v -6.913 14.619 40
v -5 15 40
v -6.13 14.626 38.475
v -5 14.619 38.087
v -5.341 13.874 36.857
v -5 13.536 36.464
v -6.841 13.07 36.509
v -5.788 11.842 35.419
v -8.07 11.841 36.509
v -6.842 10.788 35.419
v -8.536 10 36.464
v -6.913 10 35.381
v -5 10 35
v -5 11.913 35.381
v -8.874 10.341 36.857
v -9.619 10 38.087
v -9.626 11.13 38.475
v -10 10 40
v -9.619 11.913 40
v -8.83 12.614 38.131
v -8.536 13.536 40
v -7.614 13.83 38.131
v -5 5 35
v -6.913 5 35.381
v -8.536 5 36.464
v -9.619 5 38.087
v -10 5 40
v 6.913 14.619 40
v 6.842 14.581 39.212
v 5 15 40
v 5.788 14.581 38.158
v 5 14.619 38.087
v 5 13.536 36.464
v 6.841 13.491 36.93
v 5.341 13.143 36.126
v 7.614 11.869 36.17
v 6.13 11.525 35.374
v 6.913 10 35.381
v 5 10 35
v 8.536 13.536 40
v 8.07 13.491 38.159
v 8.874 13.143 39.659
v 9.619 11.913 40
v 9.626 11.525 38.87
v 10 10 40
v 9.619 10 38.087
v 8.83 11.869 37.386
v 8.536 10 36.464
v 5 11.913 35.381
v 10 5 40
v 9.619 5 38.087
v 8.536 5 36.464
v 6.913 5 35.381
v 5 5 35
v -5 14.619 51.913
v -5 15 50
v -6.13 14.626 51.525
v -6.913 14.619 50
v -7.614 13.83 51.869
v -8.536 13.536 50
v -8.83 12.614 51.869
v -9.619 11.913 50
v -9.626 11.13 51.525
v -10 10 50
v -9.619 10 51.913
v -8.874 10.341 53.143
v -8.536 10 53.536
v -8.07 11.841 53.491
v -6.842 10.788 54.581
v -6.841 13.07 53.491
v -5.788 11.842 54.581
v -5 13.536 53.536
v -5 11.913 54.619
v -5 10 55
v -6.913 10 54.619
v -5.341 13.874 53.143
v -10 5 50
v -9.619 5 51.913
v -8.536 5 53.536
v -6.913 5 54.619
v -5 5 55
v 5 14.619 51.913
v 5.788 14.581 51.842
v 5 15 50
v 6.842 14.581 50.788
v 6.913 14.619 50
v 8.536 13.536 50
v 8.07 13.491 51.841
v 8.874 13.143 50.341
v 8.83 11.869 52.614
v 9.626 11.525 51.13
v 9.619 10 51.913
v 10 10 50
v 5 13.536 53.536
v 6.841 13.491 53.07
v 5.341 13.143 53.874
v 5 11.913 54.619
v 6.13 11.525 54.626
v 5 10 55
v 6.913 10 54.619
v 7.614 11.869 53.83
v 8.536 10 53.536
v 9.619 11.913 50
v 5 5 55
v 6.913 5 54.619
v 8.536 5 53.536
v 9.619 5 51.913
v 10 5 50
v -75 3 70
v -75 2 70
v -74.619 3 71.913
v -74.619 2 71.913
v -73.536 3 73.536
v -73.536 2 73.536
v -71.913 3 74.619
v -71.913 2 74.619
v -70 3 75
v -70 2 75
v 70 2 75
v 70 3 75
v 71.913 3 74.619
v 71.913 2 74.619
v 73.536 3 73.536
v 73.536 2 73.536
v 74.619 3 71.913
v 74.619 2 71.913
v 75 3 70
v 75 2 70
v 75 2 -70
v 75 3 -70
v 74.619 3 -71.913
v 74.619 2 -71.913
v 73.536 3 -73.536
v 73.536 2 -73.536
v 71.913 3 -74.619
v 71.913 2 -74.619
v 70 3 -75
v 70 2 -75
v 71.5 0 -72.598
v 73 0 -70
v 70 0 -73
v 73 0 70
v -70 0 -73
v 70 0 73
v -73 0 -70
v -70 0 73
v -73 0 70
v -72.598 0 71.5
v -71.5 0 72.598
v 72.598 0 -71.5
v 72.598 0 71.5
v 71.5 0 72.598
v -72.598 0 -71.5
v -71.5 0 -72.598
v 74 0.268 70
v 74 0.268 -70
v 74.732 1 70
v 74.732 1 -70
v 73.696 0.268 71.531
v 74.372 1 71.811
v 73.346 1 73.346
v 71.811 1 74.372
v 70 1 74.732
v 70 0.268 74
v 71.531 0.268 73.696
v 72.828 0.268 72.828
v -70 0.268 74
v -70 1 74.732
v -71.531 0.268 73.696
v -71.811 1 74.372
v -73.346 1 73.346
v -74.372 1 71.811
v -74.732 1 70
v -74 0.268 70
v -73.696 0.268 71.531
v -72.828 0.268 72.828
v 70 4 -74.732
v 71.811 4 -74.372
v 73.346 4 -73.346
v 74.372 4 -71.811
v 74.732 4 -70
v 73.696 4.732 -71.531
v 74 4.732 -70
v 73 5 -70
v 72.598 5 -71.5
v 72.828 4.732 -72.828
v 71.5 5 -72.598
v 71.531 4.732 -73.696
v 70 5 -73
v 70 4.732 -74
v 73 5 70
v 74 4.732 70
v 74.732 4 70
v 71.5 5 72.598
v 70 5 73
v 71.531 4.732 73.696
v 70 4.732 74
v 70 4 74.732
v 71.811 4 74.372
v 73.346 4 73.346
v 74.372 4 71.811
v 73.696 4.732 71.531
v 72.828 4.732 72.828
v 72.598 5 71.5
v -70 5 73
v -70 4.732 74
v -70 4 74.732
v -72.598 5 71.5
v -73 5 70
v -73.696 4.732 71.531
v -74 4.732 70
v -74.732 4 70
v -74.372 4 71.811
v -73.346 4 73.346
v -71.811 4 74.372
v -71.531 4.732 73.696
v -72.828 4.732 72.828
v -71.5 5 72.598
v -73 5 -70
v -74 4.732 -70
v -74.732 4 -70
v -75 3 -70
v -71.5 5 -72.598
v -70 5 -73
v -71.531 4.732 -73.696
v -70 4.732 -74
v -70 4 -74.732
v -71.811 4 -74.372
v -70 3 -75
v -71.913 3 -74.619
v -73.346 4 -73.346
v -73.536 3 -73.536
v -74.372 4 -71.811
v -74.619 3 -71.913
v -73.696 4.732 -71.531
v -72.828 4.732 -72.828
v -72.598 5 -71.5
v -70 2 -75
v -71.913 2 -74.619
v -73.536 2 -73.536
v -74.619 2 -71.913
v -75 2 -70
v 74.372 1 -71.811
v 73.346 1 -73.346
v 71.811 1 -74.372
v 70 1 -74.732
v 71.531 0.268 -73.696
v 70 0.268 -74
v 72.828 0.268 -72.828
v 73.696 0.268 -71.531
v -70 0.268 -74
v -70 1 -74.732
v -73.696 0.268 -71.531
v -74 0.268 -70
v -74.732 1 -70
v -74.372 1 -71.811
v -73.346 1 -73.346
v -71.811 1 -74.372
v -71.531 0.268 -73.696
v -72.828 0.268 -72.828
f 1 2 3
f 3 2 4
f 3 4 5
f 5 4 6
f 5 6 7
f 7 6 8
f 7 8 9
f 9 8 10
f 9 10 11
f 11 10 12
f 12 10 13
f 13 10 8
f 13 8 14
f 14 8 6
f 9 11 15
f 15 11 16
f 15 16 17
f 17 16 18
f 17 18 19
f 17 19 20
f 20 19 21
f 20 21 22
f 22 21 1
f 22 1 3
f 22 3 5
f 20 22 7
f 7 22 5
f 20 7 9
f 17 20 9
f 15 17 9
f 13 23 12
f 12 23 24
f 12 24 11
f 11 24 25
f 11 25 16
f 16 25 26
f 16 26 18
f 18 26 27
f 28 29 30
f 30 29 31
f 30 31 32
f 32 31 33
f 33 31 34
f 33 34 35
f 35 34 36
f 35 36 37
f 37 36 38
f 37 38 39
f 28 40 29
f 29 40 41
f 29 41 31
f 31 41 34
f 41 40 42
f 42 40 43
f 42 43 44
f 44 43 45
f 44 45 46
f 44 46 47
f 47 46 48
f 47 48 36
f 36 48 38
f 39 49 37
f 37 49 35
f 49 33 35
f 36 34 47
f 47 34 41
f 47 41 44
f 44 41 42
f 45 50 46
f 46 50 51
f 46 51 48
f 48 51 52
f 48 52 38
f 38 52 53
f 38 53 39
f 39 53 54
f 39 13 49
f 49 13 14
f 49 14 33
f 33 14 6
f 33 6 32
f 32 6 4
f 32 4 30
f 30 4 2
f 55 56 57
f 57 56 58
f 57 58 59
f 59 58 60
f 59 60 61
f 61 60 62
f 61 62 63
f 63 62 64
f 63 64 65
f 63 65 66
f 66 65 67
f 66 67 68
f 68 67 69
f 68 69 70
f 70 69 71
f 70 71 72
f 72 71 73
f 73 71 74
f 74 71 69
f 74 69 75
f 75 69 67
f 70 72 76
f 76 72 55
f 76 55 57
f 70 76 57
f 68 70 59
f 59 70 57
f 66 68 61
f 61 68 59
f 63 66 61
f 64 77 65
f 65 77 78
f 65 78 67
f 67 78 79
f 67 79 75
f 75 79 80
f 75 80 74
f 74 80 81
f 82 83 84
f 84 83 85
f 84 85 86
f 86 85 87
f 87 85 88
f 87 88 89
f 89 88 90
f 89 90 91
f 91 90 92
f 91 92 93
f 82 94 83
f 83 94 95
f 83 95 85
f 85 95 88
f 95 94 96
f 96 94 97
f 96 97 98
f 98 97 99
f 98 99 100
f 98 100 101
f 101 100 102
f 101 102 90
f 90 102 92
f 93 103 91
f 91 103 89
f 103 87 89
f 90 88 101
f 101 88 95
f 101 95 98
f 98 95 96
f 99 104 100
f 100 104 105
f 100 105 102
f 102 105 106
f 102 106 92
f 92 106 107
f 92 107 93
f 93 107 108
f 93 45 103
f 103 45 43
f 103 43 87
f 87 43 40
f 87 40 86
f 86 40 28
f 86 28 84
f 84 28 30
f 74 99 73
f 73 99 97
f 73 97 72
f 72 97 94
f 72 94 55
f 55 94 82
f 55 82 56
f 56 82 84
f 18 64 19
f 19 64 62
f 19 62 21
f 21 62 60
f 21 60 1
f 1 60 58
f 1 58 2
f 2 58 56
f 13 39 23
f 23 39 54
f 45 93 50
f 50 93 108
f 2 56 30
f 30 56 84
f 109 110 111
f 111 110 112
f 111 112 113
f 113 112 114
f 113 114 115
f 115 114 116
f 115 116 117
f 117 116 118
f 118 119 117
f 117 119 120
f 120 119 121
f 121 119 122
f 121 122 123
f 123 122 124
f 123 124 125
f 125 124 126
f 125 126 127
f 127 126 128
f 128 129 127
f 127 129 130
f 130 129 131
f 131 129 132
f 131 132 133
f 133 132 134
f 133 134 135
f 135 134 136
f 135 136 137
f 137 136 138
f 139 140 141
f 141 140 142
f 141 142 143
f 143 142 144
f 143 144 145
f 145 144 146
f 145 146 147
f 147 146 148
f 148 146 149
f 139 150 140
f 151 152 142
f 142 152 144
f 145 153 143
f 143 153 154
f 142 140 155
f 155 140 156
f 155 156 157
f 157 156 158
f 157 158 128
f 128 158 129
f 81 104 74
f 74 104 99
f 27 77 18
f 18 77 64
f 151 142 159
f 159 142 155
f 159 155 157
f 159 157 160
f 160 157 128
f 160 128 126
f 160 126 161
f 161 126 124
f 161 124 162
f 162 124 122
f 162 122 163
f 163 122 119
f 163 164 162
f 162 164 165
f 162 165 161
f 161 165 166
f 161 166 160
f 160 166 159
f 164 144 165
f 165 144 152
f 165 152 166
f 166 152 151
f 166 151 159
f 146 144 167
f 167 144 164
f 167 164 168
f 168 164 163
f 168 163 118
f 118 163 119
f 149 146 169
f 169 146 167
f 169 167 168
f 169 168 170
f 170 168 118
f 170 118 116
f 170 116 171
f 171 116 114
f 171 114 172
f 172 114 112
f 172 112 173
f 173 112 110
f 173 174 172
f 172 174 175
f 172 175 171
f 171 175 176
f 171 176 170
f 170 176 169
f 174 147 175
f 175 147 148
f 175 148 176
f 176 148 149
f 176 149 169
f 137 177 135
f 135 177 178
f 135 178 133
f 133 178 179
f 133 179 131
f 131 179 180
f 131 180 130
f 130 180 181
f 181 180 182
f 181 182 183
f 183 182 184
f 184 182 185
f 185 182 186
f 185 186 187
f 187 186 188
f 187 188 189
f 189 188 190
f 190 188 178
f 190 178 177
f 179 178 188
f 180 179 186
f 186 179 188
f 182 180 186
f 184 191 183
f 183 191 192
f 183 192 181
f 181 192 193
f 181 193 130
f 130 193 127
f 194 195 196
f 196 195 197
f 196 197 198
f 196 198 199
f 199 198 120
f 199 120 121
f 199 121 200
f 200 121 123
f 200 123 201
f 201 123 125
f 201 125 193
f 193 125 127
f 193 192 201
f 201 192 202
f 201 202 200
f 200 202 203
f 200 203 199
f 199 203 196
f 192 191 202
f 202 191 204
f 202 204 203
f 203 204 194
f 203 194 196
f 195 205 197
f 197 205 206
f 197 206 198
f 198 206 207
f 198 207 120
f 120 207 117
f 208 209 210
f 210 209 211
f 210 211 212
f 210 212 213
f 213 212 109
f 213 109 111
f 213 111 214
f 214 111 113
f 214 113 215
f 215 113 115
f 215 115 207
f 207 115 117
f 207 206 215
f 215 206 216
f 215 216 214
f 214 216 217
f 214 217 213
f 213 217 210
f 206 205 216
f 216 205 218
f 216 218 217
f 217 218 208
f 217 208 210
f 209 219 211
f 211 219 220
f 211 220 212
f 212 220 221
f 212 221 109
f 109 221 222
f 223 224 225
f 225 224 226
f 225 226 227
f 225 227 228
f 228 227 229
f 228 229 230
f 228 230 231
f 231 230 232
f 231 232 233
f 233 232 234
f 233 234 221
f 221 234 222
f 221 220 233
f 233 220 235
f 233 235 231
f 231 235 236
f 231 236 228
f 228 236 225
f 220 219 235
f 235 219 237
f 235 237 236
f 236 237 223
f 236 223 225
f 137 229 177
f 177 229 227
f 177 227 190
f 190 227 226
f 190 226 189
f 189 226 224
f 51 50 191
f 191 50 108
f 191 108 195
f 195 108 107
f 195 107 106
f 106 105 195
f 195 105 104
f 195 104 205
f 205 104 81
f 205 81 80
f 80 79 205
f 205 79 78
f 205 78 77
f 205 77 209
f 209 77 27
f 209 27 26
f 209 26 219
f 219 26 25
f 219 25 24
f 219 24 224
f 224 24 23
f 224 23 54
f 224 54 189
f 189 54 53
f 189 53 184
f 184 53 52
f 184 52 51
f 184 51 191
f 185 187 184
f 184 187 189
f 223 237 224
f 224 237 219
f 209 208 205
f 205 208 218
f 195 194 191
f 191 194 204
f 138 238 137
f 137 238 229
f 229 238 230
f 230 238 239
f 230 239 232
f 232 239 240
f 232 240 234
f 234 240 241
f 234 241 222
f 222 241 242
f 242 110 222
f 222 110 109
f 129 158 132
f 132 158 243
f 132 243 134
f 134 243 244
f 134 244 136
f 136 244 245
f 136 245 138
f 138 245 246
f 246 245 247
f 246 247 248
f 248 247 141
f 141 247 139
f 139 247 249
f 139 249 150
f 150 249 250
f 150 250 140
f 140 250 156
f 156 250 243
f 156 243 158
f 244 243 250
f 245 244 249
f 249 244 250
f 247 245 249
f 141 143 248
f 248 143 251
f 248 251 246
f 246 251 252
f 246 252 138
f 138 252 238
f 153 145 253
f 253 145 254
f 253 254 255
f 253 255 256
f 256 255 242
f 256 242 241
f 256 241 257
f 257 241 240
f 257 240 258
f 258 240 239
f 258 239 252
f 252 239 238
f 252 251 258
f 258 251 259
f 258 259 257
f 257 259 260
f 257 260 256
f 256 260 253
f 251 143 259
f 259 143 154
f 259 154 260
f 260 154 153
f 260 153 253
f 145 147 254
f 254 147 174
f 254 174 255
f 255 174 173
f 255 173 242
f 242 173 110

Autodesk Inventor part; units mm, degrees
ref_plane "YZ Plane" through (0, 0, 0) normal (1, 0, 0) x (0, 1, 0)
ref_plane "XZ Plane" through (0, 0, 0) normal (0, 1, 0) x (-1, 0, 0)
ref_plane "XY Plane" through (0, 0, 0) normal (0, 0, 1) x (1, 0, 0)
sketch "Sketch1" plane through (0, 0, 0) normal (0, 1, 0) x (-1, 0, 0)
  line L0 (75, 75) -> (-75, 75)
  line L1 (-75, 75) -> (-75, -75)
  line L2 (-75, -75) -> (75, -75)
  line L3 (75, -75) -> (75, 75)
  line L4 (75, 75) -> (-75, -75) construction
  line L5 (-75, 75) -> (75, -75) construction
  point P0 (0, 0)
  dimension "d0" = 150
  dimension "d1" = 150
extrude "Extrusion1" add sketch "Sketch1" along normal blind 5
sketch "Sketch2" plane through (0, 5, 0) normal (0, 1, 0) x (1, 0, 0)
  line L0 (10, -55) -> (-10, -55)
  line L1 (-10, -55) -> (-10, -35)
  line L2 (-10, -35) -> (10, -35)
  line L3 (10, -35) -> (10, -55)
  line L4 (10, -55) -> (-10, -35) construction
  line L5 (-10, -55) -> (10, -35) construction
  line L6 (-75, -75) -> (75, -75) projected
  point P0 (0, 0)
  point P1 (0, -45)
  dimension "d4" = 20
  dimension "d5" = 20
  dimension "d6" = 20
extrude "Extrusion2" add sketch "Sketch2" along normal blind 10
fillet "Fillet1" radius 5 12 edges at (75, 2.5, 75) (75, 2.5, -75) (-75, 2.5, 75) (-75, 2.5, -75) (10, 10, 55) (10, 10, 35) (-10, 10, 35) (-10, 10, 55) (-10, 15, 45) (0, 15, 55) (10, 15, 45) (0, 15, 35)
fillet "Fillet2" radius 2 16 edges at (73.5355, 5, -73.5355) (0, 5, -75) (-73.5355, 5, -73.5355) (-75, 5, 0) (-73.5355, 5, 73.5355) (0, 5, 75) (73.5355, 5, 73.5355) (75, 5, 0) (73.5355, 0, -73.5355) (0, 0, -75) (-73.5355, 0, -73.5355) (-75, 0, 0) (-73.5355, 0, 73.5355) (0, 0, 75) (73.5355, 0, 73.5355) (75, 0, 0)
properties part number "slider"
